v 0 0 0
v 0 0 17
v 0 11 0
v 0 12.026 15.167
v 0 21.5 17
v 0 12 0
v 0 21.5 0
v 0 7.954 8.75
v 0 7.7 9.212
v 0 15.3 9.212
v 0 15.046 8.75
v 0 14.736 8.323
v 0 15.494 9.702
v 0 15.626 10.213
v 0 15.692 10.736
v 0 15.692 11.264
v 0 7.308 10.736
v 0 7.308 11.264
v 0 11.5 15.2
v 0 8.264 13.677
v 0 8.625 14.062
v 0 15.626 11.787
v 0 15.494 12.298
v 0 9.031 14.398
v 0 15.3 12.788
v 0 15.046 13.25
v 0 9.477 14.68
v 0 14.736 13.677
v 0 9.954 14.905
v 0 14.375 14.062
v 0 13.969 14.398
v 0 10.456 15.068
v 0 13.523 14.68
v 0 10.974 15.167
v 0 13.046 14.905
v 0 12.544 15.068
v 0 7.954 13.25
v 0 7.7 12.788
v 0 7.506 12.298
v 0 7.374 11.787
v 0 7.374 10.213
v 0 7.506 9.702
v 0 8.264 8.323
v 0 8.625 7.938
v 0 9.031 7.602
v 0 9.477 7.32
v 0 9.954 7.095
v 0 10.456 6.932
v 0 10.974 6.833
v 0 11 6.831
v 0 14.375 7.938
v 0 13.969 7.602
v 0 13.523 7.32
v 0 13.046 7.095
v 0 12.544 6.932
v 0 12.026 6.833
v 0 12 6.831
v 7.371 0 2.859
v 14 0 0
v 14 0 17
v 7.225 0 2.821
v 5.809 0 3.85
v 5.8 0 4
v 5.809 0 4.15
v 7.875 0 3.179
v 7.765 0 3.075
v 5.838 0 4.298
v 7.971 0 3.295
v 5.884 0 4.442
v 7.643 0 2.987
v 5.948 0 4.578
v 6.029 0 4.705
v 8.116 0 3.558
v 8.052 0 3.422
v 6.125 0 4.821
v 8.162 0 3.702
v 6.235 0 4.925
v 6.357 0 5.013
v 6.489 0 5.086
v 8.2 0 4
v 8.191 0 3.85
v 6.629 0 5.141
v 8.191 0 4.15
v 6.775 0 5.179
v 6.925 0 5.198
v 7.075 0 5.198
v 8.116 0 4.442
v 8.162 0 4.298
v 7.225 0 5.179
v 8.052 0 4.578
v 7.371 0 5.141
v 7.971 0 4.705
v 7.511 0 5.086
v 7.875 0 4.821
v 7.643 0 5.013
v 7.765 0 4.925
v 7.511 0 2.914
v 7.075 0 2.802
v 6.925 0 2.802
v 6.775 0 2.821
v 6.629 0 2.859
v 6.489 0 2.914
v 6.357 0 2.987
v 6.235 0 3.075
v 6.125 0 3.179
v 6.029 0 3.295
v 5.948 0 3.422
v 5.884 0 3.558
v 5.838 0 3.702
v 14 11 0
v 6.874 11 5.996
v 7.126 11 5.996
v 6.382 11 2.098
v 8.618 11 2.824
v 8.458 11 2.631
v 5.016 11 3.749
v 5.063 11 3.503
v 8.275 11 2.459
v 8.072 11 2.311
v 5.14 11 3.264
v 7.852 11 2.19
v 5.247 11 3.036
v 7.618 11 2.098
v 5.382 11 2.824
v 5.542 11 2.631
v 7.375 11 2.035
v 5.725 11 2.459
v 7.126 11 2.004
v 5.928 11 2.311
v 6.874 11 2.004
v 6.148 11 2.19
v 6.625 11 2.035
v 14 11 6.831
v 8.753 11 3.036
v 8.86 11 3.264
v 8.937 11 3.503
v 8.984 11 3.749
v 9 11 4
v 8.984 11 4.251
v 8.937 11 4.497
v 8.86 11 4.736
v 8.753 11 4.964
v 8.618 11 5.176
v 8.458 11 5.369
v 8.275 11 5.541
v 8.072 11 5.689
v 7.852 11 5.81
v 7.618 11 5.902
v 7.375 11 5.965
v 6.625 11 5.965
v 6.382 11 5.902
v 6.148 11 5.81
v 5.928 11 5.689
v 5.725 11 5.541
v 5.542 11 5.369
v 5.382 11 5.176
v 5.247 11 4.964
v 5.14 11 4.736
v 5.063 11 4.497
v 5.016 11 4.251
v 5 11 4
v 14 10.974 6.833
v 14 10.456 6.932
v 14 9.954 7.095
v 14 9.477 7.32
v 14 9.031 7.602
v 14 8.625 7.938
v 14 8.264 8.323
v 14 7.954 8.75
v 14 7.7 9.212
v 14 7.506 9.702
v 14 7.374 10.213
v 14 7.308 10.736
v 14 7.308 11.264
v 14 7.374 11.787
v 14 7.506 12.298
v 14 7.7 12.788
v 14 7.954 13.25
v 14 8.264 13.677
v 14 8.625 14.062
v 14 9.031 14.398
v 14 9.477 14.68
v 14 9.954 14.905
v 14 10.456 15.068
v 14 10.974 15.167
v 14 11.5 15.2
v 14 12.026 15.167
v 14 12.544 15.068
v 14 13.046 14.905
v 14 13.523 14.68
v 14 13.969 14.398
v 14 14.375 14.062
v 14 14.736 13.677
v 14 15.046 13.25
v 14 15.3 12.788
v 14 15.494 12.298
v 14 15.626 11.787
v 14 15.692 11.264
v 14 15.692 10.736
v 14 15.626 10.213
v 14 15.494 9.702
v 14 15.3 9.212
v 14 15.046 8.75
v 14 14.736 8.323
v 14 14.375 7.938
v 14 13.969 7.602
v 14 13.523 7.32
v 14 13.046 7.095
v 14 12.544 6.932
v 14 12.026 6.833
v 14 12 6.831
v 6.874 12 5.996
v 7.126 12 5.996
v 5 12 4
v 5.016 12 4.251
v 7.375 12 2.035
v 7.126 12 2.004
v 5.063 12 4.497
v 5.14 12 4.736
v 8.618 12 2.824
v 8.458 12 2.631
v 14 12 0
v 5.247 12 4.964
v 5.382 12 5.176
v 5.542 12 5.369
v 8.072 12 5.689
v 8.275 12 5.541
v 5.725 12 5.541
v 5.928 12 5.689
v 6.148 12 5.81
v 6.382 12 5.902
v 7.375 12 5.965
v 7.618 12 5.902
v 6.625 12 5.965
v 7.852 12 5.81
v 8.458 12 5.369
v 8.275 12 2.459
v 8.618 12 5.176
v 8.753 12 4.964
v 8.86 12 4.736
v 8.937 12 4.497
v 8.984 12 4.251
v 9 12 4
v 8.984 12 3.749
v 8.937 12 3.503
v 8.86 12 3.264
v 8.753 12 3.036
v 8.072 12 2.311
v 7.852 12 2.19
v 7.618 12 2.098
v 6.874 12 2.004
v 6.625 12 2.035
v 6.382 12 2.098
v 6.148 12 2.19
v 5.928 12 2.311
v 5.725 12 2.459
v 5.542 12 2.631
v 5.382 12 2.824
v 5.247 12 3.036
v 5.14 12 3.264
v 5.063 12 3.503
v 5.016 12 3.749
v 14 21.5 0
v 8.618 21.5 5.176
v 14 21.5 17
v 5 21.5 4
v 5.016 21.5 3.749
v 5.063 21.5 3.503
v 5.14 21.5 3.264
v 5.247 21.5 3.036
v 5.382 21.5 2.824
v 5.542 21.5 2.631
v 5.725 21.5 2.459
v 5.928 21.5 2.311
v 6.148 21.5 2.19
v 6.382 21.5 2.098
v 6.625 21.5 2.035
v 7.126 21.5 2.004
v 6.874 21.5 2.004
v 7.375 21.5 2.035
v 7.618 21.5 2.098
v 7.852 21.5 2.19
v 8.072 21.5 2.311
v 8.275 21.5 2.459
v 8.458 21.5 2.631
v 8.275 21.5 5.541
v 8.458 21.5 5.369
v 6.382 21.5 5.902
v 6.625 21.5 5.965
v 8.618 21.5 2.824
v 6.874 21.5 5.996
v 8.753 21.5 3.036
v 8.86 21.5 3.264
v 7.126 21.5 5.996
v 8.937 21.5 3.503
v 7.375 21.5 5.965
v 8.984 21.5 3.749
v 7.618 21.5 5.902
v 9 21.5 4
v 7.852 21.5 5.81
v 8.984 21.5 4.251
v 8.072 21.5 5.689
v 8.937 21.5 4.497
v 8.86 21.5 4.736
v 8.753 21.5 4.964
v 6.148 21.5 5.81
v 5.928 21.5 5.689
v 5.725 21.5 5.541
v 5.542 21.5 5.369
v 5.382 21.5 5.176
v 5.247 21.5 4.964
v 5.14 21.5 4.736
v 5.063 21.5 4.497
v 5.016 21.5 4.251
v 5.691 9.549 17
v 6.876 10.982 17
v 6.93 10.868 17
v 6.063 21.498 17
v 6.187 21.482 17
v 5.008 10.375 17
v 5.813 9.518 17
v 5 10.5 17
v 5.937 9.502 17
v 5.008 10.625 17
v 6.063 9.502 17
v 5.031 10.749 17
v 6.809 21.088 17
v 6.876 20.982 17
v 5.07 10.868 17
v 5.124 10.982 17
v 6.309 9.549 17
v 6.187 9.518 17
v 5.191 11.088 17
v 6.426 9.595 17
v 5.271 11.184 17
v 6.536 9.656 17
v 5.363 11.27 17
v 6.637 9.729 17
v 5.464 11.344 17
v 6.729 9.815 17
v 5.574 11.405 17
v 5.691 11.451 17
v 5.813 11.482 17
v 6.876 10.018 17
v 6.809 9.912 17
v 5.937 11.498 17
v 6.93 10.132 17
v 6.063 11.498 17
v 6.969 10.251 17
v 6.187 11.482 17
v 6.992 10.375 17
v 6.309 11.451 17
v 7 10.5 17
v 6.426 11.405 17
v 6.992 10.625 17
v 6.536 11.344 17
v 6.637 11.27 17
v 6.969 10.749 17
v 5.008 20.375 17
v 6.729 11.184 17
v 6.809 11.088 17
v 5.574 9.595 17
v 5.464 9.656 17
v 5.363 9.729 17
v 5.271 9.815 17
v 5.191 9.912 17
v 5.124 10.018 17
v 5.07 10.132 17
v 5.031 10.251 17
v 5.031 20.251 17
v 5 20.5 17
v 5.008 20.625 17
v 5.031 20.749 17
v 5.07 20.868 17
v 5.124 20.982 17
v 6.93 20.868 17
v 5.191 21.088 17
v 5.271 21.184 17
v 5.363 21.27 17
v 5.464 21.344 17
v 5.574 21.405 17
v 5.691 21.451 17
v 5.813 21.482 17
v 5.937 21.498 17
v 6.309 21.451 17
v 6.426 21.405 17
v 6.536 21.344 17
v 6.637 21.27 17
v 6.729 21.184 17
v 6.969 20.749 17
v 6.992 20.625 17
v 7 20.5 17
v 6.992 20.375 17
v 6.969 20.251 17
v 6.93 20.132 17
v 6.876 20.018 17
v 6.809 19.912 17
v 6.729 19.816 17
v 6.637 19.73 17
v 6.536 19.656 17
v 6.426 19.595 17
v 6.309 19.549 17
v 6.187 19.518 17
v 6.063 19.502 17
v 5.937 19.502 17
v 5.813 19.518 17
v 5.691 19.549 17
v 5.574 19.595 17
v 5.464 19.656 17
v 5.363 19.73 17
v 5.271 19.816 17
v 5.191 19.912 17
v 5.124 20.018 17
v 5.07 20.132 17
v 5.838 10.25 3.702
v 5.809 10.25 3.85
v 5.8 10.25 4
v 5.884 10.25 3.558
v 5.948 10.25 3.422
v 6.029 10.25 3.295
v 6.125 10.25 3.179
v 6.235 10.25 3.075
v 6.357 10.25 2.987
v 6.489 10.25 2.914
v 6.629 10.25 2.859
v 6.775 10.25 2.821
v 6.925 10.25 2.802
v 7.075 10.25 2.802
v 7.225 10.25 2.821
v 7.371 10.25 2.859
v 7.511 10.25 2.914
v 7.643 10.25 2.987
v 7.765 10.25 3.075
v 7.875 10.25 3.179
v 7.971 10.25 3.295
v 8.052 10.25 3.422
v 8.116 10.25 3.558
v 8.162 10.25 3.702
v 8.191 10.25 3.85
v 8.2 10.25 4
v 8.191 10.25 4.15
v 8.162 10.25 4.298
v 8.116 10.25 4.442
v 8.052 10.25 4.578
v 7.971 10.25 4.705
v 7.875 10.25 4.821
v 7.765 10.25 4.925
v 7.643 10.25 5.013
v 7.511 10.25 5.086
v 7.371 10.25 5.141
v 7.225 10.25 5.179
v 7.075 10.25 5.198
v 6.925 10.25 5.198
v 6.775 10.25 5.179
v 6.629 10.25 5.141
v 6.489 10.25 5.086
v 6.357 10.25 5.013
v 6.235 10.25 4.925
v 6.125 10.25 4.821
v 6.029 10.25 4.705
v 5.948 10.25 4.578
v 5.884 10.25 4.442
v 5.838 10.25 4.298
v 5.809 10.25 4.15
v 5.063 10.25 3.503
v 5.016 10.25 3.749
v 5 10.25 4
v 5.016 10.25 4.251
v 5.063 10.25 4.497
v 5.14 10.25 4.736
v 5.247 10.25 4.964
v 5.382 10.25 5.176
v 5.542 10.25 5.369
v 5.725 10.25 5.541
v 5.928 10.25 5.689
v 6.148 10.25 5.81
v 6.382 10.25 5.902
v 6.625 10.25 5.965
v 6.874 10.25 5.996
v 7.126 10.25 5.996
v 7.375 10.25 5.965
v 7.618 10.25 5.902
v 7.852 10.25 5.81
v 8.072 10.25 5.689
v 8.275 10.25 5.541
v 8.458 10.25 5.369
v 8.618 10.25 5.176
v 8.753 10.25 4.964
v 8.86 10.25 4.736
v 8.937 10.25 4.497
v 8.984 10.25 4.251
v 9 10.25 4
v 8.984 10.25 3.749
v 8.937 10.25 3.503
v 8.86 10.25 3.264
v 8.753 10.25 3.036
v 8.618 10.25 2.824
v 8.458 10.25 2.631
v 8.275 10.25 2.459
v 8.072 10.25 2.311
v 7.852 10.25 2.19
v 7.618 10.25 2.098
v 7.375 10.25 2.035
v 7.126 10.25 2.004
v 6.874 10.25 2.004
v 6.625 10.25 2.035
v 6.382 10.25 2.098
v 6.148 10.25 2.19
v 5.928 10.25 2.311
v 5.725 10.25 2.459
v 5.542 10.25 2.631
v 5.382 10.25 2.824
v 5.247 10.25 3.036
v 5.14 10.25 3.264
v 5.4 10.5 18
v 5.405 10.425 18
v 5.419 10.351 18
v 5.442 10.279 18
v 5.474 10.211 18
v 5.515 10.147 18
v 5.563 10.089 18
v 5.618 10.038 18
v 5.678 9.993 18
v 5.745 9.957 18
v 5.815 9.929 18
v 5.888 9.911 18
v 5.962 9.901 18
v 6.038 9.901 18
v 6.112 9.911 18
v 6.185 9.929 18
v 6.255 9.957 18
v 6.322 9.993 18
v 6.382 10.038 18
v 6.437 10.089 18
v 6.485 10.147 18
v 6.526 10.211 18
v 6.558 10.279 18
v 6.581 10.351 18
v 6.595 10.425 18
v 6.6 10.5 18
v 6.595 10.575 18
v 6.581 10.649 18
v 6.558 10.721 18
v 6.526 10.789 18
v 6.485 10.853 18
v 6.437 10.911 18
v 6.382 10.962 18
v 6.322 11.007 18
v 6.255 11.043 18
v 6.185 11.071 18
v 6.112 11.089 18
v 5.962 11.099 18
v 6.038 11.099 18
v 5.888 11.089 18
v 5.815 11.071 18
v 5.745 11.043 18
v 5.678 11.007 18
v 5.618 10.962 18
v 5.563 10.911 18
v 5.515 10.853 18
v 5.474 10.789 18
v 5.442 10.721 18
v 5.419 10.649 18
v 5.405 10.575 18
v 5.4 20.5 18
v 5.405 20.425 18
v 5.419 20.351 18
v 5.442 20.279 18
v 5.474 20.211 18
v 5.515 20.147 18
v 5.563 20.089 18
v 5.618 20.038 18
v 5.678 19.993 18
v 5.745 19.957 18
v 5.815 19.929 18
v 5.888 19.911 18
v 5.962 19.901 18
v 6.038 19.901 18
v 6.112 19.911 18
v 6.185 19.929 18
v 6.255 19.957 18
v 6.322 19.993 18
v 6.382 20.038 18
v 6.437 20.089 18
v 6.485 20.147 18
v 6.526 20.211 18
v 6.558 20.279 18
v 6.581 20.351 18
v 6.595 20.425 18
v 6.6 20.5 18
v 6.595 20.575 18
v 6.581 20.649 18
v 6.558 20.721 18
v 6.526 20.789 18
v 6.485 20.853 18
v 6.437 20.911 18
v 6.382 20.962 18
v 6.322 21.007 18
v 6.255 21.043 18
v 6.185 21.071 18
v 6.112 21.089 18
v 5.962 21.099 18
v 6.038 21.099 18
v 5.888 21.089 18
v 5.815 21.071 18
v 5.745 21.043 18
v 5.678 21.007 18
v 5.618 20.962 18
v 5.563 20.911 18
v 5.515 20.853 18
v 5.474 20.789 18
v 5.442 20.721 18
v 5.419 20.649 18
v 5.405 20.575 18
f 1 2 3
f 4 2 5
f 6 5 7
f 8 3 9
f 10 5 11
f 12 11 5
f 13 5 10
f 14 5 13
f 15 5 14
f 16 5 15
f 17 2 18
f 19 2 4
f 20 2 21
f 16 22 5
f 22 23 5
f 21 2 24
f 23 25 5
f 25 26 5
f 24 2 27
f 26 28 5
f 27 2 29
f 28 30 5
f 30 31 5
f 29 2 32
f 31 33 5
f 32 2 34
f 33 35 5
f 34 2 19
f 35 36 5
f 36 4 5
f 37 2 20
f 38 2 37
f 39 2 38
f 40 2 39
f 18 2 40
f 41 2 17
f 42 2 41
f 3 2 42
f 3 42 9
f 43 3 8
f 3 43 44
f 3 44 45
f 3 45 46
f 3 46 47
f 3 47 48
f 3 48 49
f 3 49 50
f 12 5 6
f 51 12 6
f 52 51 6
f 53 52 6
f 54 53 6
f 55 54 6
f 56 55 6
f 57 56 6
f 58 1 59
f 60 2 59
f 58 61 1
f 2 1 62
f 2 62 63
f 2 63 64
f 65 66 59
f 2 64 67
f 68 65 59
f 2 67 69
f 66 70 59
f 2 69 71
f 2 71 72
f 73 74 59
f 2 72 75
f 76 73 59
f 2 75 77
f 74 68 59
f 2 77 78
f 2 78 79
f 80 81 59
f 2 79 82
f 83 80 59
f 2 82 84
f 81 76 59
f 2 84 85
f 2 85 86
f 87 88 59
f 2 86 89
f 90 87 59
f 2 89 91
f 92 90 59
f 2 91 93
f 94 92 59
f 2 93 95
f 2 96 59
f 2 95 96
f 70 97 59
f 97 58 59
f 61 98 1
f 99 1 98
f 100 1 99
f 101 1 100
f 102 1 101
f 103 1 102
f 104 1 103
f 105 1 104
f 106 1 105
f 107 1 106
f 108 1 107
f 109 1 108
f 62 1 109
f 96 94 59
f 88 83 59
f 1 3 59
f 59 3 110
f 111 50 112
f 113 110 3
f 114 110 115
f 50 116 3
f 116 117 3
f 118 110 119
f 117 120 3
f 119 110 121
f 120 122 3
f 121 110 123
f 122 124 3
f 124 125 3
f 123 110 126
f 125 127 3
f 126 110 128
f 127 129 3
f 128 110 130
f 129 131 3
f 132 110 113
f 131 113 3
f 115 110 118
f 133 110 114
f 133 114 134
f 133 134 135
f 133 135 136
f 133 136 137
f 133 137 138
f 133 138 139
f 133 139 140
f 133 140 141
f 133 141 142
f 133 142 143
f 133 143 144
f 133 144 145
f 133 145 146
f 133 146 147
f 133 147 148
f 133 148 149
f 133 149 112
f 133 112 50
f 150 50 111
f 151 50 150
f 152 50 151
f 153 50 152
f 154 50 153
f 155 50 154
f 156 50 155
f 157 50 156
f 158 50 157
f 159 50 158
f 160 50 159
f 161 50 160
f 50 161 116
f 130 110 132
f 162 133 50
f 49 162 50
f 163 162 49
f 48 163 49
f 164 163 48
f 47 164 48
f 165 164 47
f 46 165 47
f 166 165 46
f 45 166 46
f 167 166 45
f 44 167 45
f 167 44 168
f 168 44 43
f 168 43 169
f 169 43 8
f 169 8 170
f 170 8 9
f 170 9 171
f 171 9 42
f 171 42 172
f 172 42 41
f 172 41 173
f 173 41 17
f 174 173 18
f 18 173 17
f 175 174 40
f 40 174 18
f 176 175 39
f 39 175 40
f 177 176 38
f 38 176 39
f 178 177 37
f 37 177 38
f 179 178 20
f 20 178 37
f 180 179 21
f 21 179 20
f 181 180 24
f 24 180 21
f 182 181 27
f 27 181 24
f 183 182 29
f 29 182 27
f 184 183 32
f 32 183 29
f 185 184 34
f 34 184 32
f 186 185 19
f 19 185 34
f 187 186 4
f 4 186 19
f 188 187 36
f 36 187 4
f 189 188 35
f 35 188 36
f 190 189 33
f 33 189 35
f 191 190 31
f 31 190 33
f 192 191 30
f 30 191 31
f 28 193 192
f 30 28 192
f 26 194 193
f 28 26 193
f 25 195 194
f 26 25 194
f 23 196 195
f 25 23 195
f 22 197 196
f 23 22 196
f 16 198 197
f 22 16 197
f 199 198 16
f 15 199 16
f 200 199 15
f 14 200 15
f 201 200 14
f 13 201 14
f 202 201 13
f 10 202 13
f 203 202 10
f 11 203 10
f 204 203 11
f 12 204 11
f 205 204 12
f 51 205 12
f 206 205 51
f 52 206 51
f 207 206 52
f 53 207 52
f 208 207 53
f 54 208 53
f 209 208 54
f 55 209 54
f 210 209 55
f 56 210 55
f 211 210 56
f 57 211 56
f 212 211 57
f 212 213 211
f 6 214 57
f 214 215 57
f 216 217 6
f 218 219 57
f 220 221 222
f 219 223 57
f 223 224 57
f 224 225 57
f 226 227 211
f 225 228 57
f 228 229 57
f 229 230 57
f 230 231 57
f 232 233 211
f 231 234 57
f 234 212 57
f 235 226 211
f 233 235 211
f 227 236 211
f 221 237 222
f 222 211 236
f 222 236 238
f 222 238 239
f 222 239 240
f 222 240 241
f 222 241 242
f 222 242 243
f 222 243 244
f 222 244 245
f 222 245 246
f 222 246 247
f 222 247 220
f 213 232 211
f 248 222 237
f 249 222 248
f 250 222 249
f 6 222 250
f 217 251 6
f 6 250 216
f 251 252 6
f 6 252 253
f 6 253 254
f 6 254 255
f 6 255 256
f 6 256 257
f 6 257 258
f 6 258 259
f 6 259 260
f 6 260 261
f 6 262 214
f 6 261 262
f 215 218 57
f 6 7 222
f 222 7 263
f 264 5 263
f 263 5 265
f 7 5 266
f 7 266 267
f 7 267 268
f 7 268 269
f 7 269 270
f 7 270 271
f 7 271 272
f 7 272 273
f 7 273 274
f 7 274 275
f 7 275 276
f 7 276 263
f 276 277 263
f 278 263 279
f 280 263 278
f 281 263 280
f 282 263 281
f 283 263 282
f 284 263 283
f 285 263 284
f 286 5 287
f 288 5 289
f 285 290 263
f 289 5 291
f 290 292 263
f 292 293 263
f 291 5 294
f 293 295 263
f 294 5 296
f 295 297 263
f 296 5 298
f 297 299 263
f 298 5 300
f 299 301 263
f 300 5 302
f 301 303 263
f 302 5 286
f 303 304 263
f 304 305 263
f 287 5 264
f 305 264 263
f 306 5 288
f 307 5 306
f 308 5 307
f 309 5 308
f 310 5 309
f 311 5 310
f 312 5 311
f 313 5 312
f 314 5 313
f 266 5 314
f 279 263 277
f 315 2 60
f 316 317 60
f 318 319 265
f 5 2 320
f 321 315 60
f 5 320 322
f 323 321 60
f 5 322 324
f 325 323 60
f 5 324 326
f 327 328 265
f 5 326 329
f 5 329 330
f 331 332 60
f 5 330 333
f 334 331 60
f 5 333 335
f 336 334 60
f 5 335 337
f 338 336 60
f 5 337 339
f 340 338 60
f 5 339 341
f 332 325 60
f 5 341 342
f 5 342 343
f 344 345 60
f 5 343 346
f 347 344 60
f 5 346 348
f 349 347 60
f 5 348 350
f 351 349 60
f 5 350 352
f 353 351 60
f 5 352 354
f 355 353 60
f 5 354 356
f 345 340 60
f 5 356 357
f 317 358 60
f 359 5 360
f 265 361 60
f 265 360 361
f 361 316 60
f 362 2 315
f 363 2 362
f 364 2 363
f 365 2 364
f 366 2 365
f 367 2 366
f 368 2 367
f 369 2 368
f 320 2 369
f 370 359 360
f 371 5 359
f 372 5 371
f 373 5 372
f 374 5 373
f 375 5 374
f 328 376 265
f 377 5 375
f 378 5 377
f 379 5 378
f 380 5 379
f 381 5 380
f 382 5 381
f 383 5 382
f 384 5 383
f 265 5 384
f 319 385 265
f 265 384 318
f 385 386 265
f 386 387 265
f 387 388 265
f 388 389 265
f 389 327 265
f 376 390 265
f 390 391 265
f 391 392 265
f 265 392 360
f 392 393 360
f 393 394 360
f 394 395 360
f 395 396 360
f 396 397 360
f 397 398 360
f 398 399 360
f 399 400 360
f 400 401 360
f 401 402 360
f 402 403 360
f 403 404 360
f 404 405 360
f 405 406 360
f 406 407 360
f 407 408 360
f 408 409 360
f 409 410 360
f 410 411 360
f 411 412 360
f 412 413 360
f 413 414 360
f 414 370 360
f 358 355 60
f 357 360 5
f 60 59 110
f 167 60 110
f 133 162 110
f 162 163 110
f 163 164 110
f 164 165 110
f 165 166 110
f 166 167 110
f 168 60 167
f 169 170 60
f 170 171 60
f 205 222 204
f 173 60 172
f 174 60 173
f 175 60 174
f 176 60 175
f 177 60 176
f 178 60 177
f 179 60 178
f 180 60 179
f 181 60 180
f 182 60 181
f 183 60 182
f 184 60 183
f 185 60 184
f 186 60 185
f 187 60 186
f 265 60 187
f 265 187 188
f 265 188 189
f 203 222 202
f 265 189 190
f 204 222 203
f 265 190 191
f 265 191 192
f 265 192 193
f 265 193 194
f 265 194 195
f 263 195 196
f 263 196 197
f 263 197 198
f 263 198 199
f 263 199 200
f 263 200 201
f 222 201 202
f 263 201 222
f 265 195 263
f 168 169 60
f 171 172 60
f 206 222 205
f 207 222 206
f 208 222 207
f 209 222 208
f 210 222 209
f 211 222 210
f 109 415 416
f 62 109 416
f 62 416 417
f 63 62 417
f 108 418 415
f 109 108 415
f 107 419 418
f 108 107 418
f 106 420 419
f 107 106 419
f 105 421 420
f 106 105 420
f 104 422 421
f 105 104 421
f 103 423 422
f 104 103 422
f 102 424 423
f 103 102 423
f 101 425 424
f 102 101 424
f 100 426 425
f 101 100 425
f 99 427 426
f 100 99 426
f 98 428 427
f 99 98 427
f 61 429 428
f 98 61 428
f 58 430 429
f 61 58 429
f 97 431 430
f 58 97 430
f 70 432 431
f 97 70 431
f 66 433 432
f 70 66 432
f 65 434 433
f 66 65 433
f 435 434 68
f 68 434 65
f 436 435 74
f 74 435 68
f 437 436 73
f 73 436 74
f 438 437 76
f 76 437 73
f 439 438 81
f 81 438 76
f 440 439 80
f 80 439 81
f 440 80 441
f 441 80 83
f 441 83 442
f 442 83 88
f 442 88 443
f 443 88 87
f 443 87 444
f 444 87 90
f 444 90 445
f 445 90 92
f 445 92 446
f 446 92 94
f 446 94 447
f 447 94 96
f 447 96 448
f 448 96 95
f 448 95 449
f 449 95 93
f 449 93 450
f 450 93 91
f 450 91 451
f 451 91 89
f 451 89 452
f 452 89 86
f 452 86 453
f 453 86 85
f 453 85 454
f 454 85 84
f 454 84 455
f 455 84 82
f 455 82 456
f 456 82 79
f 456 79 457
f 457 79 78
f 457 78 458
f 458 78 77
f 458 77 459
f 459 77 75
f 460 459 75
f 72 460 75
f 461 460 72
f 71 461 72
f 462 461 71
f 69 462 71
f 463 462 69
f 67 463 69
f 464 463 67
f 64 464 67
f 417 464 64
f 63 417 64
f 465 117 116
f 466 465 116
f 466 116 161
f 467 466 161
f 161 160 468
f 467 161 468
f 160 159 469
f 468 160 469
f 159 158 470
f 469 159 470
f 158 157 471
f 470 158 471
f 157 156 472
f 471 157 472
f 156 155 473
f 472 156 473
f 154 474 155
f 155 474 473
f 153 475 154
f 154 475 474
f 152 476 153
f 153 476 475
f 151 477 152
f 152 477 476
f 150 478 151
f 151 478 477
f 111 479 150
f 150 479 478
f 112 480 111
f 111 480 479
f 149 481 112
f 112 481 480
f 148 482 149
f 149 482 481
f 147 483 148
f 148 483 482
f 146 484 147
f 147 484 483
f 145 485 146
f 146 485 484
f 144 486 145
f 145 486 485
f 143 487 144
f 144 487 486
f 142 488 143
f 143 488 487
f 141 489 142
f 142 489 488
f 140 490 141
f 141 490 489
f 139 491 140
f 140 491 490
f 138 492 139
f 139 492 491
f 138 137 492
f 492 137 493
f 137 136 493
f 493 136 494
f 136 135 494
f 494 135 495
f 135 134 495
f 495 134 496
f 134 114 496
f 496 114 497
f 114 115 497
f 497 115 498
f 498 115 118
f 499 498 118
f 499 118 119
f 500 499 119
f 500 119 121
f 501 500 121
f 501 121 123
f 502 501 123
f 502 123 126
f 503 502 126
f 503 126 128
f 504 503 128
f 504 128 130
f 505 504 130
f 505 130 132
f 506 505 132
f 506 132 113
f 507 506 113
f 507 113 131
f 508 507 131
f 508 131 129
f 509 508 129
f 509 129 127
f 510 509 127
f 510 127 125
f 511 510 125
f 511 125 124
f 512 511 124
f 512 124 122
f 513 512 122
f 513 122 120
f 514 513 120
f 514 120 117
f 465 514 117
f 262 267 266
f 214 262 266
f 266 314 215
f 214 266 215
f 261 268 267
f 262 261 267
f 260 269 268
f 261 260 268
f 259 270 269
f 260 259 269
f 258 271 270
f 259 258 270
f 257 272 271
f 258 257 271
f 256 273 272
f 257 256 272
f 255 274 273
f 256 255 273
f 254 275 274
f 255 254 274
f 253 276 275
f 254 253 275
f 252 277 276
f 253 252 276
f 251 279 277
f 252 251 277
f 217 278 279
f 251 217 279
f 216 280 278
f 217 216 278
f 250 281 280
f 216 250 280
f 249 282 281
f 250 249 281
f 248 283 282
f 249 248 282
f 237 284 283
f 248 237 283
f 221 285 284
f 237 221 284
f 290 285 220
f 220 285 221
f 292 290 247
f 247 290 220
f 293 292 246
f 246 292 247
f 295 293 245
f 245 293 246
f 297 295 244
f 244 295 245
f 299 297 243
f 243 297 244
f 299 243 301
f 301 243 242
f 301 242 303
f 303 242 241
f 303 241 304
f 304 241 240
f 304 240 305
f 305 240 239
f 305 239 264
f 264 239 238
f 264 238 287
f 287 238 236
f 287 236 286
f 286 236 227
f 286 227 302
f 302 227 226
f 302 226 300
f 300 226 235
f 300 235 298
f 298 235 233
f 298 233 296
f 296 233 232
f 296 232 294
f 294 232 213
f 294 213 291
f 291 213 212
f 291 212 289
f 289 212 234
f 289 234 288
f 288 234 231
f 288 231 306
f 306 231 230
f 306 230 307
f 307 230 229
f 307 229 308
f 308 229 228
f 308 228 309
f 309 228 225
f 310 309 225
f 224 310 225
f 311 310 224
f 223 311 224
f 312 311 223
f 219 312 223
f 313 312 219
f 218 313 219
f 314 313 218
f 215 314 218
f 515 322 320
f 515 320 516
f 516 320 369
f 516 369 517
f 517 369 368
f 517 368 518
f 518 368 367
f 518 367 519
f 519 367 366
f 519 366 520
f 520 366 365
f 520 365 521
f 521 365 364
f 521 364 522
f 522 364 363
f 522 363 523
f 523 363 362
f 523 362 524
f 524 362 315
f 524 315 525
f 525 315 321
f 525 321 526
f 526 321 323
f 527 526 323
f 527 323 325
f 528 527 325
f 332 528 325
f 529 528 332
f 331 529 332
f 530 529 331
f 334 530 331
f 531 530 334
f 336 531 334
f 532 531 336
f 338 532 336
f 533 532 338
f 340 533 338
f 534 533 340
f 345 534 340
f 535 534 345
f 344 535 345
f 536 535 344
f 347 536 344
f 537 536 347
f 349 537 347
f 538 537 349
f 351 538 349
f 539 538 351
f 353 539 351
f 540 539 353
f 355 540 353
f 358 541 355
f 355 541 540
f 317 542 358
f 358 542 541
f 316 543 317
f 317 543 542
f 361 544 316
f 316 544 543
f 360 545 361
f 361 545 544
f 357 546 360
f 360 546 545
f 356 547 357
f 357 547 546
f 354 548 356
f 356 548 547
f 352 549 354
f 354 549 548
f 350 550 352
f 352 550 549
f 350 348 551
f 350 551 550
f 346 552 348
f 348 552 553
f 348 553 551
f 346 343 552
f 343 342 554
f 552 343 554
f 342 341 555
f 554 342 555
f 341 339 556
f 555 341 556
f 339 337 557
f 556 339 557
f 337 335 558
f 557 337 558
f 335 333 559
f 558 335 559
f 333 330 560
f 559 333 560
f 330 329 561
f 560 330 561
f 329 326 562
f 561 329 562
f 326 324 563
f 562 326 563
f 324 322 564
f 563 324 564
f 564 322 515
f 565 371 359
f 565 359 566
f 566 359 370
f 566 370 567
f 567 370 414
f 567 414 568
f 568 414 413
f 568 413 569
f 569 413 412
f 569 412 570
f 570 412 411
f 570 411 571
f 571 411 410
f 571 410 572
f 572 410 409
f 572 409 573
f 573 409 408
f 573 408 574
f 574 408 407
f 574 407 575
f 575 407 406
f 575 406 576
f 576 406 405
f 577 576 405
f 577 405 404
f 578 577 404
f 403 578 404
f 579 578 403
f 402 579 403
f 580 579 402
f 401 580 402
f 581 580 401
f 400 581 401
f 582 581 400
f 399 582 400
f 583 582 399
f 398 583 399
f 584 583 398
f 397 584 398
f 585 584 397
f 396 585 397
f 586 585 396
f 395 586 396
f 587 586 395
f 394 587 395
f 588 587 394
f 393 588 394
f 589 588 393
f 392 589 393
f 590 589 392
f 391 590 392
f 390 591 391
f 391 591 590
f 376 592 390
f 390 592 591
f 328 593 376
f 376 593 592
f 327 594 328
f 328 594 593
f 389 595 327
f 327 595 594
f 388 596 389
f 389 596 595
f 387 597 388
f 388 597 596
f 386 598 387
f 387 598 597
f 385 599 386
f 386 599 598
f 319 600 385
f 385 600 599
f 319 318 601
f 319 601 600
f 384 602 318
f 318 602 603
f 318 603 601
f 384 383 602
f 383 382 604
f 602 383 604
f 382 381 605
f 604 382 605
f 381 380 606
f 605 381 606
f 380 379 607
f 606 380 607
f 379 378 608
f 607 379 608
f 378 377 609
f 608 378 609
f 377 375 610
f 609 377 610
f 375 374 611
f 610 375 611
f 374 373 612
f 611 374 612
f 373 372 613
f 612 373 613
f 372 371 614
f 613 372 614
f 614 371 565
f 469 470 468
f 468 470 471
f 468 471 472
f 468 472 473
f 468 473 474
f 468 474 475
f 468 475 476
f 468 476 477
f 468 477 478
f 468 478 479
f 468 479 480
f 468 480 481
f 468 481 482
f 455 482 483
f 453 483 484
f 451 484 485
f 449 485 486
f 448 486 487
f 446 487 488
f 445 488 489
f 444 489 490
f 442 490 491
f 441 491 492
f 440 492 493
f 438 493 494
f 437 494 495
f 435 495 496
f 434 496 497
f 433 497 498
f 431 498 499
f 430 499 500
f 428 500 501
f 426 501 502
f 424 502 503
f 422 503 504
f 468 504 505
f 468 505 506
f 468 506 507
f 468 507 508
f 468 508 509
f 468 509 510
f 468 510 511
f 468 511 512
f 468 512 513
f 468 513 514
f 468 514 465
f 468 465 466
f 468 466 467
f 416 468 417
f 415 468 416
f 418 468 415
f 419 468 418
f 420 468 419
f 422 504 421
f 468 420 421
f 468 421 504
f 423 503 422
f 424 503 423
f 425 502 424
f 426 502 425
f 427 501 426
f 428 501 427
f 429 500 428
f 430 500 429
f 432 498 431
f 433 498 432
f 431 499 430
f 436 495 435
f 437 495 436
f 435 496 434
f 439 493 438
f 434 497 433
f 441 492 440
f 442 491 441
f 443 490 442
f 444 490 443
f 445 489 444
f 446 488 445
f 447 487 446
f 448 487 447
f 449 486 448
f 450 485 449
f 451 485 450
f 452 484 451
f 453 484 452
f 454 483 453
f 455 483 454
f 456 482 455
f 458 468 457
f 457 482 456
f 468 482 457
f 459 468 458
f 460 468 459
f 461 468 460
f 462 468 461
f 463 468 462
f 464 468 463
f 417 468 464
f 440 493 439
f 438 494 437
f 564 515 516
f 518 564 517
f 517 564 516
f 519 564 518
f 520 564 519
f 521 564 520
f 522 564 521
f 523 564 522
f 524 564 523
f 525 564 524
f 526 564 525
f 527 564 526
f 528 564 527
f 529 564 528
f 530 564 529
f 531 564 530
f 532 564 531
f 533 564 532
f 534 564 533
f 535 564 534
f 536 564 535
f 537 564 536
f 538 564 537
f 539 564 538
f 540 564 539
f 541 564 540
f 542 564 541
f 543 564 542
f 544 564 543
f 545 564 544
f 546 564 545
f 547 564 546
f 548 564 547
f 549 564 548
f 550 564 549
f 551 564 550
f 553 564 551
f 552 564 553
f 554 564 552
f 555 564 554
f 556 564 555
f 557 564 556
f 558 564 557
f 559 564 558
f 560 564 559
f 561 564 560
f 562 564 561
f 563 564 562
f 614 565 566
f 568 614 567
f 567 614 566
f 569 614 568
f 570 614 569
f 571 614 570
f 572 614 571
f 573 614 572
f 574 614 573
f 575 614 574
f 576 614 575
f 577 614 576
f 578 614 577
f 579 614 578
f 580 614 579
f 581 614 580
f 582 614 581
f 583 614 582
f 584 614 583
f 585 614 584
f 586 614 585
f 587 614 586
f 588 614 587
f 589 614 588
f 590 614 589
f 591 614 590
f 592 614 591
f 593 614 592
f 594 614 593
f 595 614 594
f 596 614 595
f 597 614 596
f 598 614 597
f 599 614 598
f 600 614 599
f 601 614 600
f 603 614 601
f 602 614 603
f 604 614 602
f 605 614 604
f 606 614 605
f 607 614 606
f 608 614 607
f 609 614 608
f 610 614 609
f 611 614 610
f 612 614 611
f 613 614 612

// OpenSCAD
height=17;
long=14;
larg=21.5;
r_arbre=4.2;
r_m3=2;
r_ecrou_m3=3.3;

module endstop_x(){
	difference(){	
		union(){
			cube([long,larg,height]);

			//cônes pour endstop
			translate([long-8,larg-1,height]){cylinder(h = 1, r1 = 1, r2 = 0.6, $fn=50);}
			translate([long-8,larg-11,height]){cylinder(h = 1, r1 = 1, r2 = 0.6, $fn=50);}
			
		}
		
		//trou pour passage arbre
		translate([-5,larg-10,11]){rotate([0,90,0])cylinder(r=r_arbre, h=30, $fn=50);}
		translate([-5,larg-10-0.5,-5]){cube([30,1,16]);}

		//trou pour serrage arbre avec vis
		translate([long/2,larg/2-0.5,4]){rotate([-90,0,0])cylinder(r=r_m3, h=15, $fn=50);}
		translate([long/2,-0.5,4]){rotate([-90,0,0])cylinder(r=1.2, h=larg/2+1, $fn=50);}

		
	}
}
endstop_x();
